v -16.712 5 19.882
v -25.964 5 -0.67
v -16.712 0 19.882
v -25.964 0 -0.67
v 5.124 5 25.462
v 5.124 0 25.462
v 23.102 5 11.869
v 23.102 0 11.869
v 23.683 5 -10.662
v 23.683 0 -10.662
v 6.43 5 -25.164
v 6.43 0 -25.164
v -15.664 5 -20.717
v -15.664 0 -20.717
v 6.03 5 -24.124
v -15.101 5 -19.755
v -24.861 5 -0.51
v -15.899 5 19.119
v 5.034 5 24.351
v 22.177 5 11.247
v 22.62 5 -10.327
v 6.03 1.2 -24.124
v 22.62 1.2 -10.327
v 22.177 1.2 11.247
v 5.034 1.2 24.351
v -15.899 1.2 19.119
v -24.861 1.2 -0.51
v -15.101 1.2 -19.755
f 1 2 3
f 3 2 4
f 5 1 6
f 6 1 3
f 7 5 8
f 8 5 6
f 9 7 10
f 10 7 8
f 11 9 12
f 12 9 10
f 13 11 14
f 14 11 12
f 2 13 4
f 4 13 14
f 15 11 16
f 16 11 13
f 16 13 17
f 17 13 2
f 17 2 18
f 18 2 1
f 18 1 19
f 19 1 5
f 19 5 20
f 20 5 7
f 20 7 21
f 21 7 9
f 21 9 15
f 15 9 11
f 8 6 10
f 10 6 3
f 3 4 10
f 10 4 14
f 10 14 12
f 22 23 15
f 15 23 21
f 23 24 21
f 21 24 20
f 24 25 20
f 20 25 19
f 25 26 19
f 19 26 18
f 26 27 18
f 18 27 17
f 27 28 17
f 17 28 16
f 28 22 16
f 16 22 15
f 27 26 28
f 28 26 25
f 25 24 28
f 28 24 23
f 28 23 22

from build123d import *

# Parameters (mm, degrees)
BOSS_EXTRUDE1_DEPTH = 5
CUT_EXTRUDE1_DEPTH  = 3.8


with BuildPart() as part:
    # Sketch1 → Boss-Extrude1 (new body)
    with BuildSketch(Plane(origin=(0, 0, 0), x_dir=(1, 0, 0), z_dir=(0, 1, 0))):
        Polygon((-16.711679863, -19.881566597), (5.12447272, -25.46167146), (23.101792825, -11.86861839), (23.682991741, 10.661746403), (6.430414832, 25.163598695), (-15.664395602, 20.716747925), (-25.963596653, 0.669763423), align=None)
    extrude(amount=BOSS_EXTRUDE1_DEPTH)

    # Sketch5 → Cut-Extrude1 (cut)
    with BuildSketch(Plane(origin=(0, 5, 0), x_dir=(1, 0, 0), z_dir=(0, 1, 0))):
        Polygon((6.029700068, 24.123724456), (-15.101230753, 19.755105525), (-24.860626809, 0.510489202), (-15.899463813, -19.118535902), (5.034319724, -24.350913524), (22.177157828, -11.246556595), (22.620143755, 10.326686838), align=None)
    extrude(amount=-CUT_EXTRUDE1_DEPTH, mode=Mode.SUBTRACT)


solid = part.part
